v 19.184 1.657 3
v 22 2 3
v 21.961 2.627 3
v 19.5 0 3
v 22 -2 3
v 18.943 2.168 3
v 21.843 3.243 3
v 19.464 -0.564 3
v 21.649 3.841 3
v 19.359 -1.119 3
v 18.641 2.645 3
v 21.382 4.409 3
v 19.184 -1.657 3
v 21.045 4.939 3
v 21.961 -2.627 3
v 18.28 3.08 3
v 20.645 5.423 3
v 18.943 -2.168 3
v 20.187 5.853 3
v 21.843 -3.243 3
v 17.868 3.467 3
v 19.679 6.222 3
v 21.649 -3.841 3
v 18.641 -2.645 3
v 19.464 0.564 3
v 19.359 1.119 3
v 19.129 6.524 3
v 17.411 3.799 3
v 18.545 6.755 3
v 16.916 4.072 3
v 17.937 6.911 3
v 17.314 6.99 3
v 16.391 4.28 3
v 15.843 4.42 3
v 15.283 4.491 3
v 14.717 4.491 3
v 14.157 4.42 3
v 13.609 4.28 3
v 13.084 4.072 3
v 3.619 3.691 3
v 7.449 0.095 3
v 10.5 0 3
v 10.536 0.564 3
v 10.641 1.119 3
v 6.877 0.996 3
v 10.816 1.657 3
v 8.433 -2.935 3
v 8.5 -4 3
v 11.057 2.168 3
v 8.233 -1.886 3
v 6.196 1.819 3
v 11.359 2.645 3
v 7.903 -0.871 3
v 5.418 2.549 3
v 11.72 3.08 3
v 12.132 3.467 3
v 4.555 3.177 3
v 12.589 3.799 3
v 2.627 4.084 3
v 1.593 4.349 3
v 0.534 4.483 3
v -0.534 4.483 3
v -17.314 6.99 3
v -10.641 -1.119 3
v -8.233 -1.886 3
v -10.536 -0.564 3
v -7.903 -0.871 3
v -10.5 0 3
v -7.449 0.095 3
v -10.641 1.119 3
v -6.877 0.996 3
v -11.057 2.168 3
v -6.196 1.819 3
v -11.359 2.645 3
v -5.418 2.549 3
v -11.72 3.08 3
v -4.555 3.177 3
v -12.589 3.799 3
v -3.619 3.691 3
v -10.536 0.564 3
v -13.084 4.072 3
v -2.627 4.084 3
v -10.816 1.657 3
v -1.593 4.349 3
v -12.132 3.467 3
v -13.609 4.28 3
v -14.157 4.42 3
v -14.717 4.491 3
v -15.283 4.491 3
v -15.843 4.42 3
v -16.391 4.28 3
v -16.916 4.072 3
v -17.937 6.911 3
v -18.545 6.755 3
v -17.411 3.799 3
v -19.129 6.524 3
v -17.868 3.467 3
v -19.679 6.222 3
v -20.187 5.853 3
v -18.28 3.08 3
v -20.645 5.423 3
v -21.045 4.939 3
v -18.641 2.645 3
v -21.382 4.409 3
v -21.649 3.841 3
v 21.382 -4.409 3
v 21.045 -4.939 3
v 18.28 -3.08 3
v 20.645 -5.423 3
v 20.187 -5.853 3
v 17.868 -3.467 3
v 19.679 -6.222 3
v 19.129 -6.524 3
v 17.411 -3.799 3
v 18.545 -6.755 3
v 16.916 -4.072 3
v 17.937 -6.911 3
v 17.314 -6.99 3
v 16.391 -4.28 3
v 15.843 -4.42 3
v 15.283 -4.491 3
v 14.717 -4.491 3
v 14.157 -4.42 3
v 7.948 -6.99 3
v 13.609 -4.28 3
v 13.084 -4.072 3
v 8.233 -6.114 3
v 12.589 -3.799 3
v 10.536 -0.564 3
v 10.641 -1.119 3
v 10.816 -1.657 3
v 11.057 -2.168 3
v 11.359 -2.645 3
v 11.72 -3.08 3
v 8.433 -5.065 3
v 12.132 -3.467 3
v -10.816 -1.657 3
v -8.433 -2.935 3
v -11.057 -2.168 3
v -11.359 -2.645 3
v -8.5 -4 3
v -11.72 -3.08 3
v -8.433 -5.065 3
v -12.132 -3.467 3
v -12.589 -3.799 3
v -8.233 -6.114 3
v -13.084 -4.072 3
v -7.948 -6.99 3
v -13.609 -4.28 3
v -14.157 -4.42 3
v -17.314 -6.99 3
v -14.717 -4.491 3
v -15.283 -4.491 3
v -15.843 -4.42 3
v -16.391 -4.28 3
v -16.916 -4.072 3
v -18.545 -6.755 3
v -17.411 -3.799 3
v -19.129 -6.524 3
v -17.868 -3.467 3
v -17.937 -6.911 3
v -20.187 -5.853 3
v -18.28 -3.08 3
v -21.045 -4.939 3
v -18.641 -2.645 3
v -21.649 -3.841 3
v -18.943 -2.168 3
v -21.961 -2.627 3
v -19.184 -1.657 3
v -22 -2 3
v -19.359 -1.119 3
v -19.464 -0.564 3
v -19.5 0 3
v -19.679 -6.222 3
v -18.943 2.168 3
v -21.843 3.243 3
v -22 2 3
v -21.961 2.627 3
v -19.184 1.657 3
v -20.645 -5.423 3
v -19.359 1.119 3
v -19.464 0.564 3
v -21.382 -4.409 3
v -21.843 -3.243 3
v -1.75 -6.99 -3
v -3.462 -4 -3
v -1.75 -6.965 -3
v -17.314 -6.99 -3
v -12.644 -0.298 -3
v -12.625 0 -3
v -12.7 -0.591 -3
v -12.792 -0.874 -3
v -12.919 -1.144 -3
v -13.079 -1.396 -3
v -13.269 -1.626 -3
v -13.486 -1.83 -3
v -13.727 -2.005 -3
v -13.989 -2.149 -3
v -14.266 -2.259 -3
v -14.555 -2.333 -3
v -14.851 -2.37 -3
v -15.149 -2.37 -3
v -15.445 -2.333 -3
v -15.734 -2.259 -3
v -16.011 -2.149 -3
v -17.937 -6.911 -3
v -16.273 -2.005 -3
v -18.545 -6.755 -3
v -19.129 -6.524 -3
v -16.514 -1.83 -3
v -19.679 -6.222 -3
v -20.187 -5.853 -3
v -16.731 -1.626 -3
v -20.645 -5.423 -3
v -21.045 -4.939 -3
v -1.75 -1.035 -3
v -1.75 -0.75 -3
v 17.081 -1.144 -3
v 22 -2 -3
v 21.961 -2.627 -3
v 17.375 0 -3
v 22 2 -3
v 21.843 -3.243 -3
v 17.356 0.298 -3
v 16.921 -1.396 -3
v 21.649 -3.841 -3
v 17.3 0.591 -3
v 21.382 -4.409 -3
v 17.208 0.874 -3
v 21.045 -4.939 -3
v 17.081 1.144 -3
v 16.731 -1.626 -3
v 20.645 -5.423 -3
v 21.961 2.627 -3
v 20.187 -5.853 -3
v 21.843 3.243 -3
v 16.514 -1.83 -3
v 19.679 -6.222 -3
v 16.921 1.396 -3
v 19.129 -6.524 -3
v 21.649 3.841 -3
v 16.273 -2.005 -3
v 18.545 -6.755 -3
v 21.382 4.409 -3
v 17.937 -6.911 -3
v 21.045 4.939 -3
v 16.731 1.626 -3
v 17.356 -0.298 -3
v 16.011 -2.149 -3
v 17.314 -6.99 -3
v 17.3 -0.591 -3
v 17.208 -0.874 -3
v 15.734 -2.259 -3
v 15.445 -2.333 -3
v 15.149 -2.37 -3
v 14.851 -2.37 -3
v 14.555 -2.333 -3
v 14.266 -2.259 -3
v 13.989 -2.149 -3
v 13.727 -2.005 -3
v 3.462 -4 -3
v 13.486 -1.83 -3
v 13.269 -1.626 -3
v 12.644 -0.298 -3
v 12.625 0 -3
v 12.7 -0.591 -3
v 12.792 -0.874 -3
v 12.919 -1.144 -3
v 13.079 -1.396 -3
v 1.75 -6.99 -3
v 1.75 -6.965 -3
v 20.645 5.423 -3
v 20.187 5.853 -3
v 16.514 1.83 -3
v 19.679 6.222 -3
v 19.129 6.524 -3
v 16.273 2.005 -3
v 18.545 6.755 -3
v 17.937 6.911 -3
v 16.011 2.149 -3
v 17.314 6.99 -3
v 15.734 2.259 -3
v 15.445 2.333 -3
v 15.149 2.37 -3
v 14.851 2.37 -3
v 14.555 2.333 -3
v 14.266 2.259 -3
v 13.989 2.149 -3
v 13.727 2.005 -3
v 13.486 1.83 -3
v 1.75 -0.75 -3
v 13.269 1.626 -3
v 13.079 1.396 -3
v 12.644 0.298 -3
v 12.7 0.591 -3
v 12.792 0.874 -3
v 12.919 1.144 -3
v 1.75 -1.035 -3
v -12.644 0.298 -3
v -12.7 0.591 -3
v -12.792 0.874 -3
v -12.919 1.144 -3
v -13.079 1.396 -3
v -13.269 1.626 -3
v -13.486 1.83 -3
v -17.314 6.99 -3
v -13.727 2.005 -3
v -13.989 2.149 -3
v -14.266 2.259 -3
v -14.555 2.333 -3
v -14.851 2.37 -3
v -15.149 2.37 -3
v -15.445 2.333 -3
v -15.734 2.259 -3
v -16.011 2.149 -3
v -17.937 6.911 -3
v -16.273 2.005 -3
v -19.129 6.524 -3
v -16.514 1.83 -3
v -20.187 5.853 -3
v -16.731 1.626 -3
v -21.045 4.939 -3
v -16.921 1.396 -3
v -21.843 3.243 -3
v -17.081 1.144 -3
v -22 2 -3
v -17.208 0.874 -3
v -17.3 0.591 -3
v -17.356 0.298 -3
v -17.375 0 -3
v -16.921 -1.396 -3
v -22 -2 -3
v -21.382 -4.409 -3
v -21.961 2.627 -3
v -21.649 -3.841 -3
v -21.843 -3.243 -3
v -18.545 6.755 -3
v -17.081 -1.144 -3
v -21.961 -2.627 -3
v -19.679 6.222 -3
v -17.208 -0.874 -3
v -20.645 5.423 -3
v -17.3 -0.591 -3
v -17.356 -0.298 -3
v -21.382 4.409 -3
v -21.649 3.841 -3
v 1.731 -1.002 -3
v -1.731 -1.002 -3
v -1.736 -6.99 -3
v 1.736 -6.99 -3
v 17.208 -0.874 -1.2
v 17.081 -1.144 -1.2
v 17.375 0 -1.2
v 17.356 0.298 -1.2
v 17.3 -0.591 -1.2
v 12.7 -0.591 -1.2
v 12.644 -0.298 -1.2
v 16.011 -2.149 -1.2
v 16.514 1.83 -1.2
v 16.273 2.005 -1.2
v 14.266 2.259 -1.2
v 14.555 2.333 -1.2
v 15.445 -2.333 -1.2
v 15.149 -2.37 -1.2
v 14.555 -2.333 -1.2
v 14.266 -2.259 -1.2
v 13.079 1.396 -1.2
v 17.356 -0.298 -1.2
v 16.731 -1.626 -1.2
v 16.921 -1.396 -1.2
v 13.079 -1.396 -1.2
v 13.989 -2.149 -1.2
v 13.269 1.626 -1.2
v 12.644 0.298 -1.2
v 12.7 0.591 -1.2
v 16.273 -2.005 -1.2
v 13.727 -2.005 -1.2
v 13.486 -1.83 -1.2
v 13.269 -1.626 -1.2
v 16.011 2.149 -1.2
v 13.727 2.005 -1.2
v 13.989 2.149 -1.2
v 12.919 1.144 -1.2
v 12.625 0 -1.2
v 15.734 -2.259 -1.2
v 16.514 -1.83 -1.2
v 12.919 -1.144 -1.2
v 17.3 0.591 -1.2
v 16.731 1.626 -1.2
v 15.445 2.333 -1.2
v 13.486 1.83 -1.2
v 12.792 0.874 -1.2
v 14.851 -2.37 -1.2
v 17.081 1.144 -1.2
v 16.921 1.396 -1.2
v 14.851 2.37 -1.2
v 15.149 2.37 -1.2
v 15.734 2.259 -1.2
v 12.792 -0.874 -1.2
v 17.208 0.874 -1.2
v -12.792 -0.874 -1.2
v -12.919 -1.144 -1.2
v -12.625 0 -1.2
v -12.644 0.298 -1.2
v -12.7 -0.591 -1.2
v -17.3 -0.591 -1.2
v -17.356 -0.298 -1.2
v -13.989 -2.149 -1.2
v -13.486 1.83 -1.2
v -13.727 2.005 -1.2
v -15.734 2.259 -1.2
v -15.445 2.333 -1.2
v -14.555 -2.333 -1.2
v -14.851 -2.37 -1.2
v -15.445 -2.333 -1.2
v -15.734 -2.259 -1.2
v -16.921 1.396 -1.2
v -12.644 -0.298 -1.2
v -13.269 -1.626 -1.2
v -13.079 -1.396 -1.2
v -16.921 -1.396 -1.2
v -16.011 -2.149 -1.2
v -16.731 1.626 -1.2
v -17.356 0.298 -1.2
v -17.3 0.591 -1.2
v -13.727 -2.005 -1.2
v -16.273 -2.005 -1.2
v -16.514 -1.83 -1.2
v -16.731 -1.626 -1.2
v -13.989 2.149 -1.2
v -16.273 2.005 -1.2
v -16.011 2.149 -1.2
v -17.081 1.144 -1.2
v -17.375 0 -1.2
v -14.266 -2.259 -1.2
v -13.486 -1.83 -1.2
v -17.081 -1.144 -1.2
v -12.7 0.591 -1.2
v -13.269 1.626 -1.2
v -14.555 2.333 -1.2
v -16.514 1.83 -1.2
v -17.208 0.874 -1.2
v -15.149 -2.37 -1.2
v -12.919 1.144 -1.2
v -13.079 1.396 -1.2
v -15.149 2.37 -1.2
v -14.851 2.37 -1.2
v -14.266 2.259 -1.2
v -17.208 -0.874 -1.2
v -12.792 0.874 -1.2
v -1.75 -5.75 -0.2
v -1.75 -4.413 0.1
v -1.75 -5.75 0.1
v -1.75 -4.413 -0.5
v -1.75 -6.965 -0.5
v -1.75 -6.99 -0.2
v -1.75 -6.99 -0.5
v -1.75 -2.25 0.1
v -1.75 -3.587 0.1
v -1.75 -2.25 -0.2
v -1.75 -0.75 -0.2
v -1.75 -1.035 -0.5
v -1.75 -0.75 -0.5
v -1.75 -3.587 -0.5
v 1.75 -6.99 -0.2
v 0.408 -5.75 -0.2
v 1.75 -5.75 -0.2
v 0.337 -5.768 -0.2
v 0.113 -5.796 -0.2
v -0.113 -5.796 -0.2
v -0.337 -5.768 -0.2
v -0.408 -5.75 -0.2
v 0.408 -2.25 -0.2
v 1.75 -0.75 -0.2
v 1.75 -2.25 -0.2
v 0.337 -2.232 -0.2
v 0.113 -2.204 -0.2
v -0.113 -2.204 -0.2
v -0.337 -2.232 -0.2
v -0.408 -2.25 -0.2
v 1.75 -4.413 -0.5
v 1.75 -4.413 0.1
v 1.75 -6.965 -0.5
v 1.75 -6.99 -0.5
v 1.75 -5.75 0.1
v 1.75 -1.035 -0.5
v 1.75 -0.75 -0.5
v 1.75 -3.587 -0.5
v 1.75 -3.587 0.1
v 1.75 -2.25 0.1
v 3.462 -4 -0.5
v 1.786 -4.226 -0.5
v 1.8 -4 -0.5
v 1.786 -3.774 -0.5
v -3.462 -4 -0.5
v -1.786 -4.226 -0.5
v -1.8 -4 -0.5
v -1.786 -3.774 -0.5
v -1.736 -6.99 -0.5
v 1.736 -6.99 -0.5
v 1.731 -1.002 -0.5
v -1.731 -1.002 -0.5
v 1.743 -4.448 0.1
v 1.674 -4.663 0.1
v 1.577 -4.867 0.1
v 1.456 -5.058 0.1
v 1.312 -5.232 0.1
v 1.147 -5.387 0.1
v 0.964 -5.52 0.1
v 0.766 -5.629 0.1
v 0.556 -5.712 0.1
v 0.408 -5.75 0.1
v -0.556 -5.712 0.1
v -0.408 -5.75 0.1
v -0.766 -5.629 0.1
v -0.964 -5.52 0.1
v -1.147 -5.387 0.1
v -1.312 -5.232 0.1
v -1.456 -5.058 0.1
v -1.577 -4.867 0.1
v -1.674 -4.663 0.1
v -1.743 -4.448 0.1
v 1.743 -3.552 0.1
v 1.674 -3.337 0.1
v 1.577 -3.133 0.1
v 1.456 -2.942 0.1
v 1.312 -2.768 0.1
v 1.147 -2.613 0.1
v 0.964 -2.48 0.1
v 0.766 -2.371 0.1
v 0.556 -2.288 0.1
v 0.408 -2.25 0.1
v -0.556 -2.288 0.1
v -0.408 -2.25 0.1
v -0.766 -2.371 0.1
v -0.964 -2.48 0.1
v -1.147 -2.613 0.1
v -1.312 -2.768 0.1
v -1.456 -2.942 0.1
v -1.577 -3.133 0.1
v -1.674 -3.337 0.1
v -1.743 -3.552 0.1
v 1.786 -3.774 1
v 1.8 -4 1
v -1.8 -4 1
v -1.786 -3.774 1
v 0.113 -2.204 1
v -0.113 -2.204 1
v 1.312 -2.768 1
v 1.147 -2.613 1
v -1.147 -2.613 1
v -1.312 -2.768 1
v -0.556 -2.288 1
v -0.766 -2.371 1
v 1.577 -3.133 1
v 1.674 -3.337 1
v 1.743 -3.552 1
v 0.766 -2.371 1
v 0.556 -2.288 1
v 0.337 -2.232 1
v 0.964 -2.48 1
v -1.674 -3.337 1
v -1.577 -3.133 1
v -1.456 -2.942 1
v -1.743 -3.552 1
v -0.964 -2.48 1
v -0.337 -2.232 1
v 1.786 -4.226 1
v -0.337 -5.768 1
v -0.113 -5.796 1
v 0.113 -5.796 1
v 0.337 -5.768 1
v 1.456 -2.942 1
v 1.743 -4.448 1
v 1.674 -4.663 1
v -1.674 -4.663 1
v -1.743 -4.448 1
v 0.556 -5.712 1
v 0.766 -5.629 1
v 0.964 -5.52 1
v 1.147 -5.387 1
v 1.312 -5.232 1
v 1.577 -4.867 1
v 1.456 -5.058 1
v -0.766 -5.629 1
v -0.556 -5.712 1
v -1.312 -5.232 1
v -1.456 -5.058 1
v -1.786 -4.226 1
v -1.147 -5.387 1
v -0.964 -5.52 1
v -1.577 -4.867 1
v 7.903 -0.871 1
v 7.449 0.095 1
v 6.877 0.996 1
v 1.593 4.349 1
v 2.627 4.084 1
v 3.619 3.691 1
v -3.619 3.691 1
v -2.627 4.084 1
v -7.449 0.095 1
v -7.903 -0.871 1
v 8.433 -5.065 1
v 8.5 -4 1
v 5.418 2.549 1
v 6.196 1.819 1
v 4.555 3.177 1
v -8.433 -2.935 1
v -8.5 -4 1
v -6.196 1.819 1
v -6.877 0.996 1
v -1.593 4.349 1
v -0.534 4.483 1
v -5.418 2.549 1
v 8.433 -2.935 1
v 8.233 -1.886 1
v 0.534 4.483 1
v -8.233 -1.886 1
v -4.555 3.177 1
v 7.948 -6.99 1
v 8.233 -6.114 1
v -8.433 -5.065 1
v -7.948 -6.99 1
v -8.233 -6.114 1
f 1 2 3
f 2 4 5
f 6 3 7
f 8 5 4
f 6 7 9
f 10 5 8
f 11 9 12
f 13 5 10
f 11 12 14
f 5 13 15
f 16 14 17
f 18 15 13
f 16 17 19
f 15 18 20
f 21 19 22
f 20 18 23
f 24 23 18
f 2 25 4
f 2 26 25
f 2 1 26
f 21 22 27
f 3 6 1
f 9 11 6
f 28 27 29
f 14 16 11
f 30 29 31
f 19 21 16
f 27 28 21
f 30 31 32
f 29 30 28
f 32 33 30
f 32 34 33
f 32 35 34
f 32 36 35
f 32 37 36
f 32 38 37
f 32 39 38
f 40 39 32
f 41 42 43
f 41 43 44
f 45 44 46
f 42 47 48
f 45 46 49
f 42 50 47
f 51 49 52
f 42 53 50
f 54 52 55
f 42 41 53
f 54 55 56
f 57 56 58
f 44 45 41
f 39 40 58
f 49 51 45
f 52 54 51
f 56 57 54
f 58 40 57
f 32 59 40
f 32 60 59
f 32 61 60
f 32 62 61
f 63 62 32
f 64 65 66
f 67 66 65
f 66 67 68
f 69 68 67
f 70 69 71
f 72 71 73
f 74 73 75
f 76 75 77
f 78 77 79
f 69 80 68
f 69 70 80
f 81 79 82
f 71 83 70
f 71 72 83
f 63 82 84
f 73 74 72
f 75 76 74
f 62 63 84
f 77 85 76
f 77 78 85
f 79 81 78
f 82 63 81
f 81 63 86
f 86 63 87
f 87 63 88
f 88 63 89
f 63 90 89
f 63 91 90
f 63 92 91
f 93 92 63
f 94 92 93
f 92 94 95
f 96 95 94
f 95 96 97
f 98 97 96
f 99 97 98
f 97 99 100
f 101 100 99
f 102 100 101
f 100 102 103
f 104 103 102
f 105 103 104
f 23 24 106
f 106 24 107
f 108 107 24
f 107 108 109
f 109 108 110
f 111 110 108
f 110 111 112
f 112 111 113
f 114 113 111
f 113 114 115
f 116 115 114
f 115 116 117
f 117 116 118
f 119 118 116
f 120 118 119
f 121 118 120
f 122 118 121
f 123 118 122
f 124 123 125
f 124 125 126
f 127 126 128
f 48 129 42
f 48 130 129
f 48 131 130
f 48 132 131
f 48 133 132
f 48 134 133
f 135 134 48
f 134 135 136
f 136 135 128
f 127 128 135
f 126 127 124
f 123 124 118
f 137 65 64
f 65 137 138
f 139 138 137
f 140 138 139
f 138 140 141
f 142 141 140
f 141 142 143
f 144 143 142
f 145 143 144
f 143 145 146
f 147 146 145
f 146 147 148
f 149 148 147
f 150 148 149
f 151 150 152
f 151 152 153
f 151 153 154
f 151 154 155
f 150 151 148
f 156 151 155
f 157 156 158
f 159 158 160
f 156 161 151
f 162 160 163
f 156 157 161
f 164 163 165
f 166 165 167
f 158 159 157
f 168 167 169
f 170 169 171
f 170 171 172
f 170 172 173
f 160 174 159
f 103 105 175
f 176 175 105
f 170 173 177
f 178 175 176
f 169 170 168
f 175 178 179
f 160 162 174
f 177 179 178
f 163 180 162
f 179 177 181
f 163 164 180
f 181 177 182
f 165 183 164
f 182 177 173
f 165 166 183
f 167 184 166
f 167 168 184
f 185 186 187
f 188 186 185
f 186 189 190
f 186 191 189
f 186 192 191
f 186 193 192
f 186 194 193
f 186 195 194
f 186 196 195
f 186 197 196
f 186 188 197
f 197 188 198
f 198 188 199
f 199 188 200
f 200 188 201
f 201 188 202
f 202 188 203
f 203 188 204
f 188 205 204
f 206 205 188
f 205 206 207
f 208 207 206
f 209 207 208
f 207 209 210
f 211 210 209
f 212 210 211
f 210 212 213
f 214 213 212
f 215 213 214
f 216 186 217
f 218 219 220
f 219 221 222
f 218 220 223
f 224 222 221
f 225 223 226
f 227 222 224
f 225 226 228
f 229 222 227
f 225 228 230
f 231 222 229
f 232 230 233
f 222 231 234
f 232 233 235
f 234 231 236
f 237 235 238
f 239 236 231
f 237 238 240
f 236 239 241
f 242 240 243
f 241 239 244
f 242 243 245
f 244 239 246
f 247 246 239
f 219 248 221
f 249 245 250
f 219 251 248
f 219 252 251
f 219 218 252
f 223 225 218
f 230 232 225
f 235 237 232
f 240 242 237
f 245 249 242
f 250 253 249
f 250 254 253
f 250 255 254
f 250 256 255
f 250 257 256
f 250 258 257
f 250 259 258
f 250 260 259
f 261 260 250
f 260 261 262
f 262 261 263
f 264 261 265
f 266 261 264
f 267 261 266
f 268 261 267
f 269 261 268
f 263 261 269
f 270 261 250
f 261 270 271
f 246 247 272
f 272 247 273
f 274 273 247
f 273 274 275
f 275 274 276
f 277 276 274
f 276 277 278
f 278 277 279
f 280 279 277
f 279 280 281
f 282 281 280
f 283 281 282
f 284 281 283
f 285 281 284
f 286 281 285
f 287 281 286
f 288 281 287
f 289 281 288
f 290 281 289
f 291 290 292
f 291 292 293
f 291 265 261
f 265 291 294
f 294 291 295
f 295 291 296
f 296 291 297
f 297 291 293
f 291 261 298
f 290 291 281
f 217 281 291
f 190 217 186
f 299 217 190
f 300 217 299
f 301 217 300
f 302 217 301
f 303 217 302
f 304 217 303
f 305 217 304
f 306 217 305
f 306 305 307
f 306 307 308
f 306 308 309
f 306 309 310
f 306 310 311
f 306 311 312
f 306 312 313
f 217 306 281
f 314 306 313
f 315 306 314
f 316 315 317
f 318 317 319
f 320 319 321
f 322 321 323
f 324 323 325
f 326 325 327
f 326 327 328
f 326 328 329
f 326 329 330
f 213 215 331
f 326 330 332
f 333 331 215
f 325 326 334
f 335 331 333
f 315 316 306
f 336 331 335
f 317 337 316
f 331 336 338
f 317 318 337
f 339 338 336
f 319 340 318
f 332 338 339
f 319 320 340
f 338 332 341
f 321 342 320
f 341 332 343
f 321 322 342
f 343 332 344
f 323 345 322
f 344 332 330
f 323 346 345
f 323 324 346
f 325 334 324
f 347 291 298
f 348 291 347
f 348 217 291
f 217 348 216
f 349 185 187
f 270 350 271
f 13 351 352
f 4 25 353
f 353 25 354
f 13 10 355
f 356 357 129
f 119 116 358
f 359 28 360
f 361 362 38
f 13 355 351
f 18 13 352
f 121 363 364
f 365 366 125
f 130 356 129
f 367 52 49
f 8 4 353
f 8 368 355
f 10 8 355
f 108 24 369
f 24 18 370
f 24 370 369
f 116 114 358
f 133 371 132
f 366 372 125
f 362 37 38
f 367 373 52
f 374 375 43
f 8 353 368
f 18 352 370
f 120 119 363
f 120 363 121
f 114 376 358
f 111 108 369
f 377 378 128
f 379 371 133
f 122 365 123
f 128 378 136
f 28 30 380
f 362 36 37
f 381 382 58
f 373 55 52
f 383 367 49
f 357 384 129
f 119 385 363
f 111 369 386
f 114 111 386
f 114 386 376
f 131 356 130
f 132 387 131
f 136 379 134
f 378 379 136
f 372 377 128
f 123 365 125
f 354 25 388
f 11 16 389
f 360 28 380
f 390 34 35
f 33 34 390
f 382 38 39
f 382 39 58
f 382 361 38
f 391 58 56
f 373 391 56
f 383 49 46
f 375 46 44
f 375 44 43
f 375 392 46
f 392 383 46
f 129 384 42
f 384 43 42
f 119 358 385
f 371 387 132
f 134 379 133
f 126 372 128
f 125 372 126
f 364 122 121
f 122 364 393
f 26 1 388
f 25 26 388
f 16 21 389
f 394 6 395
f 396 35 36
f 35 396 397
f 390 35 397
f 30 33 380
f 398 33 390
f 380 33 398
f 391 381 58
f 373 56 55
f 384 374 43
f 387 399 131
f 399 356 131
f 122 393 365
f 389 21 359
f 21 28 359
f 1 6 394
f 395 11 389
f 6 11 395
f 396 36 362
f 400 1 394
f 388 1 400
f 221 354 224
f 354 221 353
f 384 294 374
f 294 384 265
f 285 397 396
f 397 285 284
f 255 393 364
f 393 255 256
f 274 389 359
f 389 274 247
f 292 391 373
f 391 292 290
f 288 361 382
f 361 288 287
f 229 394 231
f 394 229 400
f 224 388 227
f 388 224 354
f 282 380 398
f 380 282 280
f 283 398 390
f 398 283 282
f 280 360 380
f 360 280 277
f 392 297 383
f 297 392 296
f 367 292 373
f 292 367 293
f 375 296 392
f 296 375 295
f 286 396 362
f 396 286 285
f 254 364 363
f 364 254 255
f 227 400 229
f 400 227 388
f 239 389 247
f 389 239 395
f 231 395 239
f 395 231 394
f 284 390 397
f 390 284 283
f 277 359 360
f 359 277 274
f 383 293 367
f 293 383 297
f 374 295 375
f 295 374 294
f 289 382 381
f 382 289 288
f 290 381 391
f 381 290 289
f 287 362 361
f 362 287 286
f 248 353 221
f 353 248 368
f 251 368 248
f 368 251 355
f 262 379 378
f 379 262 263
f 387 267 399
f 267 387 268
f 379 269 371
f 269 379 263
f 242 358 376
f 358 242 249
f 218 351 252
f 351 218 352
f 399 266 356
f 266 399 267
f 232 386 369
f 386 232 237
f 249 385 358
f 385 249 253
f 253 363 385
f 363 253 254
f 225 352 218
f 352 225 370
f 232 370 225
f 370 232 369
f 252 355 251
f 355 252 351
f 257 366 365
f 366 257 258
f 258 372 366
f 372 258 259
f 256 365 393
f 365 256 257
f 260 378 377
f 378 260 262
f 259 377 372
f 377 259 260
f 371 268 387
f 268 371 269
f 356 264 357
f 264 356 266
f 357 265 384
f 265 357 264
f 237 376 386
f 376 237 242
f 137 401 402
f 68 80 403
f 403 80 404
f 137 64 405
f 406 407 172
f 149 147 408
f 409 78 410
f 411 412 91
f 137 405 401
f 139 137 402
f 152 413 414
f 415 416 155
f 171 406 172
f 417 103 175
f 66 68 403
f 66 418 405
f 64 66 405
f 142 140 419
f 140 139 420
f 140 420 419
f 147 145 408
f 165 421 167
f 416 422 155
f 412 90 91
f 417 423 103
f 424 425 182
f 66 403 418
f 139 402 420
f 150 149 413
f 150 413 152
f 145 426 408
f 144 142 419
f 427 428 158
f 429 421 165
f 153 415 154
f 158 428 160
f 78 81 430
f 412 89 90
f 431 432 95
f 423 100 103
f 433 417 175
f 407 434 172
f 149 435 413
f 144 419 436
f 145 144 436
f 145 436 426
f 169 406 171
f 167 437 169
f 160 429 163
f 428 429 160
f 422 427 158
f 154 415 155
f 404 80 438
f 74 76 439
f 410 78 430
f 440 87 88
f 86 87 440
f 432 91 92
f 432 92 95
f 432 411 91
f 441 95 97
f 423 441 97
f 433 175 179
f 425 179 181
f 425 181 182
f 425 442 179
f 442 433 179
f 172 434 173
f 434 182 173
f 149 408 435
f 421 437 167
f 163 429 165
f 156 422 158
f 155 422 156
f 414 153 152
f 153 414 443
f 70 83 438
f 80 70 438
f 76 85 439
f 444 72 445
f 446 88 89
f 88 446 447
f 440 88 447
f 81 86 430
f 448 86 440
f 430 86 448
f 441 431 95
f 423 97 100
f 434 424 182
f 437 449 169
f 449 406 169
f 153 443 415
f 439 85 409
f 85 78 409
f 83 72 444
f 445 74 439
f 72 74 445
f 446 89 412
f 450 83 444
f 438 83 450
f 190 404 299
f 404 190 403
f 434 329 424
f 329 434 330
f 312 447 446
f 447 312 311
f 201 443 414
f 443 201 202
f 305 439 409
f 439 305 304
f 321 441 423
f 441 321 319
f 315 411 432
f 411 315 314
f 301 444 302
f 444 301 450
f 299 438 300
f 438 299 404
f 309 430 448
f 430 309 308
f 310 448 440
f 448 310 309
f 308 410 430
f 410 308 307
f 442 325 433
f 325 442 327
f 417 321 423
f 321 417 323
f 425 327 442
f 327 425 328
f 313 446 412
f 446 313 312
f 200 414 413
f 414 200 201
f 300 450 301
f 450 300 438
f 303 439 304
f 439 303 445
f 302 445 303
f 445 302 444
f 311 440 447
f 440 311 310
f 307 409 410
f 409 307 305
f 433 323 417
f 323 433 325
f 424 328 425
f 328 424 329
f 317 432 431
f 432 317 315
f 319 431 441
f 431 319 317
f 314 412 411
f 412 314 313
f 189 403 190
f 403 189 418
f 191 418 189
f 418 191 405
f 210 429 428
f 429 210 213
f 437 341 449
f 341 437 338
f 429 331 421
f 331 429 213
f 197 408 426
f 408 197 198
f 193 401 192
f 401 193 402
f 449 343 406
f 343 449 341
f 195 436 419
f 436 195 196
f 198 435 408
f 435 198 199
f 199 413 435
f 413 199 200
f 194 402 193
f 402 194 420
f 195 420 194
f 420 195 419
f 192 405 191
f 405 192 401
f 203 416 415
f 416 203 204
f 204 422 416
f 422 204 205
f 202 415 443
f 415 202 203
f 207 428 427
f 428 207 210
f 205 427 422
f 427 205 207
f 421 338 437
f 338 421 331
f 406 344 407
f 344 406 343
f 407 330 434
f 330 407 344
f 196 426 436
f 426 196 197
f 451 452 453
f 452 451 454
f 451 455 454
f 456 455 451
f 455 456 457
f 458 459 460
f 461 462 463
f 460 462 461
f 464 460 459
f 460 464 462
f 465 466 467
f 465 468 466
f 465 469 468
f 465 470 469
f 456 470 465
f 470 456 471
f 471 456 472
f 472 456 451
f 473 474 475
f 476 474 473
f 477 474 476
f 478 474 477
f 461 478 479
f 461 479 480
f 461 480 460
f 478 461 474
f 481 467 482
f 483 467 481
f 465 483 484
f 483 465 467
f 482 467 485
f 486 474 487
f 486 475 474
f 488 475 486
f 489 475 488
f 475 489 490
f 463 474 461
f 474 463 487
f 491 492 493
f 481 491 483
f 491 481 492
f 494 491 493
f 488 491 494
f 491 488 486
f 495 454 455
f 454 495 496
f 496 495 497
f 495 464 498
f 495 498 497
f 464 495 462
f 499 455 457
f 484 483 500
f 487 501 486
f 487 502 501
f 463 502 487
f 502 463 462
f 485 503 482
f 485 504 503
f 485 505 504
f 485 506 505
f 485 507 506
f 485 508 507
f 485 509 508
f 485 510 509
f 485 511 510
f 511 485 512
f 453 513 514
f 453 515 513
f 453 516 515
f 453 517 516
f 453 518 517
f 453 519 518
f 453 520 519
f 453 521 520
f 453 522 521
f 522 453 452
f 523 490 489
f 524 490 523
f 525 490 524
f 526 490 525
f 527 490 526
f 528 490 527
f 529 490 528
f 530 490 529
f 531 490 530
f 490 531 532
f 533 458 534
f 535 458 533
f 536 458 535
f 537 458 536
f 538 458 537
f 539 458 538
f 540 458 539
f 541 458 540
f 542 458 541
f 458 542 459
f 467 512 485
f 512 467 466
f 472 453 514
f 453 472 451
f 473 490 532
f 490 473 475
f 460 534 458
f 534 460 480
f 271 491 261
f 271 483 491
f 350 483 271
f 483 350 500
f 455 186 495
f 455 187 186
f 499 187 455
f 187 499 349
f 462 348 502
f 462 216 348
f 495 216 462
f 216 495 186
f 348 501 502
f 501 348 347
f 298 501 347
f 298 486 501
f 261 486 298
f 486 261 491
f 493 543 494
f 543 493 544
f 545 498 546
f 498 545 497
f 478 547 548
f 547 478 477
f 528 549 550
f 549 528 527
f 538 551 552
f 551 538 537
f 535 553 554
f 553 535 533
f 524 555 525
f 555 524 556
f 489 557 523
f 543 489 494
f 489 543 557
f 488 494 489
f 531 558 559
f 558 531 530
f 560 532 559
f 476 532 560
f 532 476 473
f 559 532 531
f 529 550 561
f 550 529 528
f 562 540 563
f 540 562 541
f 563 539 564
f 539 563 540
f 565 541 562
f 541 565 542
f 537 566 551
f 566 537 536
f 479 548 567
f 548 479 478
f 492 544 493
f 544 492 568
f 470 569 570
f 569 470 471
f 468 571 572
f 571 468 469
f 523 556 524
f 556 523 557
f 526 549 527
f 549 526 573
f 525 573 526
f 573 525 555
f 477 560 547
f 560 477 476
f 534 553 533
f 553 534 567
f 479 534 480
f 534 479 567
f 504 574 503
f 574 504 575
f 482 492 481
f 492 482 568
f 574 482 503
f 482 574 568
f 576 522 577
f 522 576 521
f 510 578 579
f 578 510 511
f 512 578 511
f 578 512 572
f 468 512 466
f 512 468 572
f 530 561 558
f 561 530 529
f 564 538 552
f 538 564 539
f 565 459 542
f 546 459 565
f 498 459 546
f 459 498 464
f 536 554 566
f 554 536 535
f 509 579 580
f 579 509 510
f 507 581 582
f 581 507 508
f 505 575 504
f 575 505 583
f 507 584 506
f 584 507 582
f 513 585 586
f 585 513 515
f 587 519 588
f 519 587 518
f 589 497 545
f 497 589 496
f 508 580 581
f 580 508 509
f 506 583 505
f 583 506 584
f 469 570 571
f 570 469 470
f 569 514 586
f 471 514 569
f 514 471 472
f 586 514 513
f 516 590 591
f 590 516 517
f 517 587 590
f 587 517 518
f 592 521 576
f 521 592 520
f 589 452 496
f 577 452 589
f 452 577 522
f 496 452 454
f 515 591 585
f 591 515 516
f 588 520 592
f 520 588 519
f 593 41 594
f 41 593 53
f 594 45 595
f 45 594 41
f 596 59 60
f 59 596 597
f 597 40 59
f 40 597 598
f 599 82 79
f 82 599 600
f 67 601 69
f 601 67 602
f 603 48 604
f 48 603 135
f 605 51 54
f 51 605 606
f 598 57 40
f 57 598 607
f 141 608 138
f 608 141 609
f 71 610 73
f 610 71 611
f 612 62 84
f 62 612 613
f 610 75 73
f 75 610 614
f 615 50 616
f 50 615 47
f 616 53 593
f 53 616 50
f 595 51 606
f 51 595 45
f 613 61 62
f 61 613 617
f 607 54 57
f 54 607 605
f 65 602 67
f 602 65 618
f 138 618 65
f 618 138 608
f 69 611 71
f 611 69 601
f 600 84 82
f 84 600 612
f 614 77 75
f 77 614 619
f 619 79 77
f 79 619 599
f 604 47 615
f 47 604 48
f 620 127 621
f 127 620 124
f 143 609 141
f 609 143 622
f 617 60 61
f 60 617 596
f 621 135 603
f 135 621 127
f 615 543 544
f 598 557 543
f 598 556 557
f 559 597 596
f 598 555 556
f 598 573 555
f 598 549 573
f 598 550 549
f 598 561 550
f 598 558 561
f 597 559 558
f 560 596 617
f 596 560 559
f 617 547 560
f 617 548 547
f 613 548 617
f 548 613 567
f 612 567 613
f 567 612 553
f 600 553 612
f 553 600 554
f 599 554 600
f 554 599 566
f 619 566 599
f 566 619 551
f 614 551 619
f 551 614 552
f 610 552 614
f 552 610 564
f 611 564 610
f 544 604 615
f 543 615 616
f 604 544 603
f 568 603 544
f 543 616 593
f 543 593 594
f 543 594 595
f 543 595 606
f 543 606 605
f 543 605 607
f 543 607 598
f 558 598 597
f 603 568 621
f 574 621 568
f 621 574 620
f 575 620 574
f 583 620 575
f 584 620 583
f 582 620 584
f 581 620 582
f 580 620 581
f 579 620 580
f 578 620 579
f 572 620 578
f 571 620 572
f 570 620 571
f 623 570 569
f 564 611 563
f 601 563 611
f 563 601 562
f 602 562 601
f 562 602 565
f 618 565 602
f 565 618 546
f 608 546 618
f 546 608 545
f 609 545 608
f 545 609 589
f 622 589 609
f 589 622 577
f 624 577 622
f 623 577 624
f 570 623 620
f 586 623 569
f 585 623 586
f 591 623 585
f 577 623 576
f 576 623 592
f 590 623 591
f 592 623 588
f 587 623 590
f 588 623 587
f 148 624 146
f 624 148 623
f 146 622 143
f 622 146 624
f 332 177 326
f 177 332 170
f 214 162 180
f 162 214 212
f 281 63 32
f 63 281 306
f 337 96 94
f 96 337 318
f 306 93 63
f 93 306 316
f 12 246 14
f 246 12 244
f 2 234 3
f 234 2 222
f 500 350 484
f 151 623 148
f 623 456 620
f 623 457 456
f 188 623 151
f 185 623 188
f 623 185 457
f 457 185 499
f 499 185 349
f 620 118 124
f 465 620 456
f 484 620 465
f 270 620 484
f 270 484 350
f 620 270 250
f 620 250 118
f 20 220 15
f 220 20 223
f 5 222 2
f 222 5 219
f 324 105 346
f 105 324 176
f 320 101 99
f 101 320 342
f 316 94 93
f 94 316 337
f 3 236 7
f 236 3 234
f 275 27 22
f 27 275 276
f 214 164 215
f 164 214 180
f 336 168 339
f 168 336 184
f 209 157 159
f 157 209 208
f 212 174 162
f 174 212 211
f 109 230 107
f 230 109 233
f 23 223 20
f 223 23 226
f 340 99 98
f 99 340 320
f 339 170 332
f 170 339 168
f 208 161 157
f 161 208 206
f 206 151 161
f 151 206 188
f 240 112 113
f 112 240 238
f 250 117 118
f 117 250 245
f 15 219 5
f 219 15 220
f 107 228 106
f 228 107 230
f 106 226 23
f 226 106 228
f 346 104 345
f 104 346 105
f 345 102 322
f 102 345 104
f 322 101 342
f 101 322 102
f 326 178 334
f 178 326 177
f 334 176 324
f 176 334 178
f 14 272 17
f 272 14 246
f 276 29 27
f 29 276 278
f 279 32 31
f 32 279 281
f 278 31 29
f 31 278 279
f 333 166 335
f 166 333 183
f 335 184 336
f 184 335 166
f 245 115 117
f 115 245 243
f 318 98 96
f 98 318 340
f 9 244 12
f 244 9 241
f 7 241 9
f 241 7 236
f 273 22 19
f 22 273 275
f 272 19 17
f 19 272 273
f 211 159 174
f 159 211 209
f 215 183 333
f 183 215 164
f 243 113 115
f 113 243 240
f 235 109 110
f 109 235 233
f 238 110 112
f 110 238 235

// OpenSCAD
$fn = 50;


difference() {
	union() {
		translate(v = [0, 0, -3.0000000000]) {
			hull() {
				translate(v = [-17.0000000000, 2.0000000000, 0]) {
					cylinder(h = 6, r = 5);
				}
				translate(v = [17.0000000000, 2.0000000000, 0]) {
					cylinder(h = 6, r = 5);
				}
				translate(v = [-17.0000000000, -2.0000000000, 0]) {
					cylinder(h = 6, r = 5);
				}
				translate(v = [17.0000000000, -2.0000000000, 0]) {
					cylinder(h = 6, r = 5);
				}
			}
		}
	}
	union() {
		translate(v = [15, 0, 3.0000000000]) {
			rotate(a = [0, 0, 0]) {
				difference() {
					union() {
						translate(v = [0, 0, -6.0000000000]) {
							cylinder(h = 6, r = 2.2500000000);
						}
						translate(v = [0, 0, -4.2000000000]) {
							cylinder(h = 4.2000000000, r1 = 2.3750000000, r2 = 4.5000000000);
						}
						translate(v = [0, 0, -6.0000000000]) {
							cylinder(h = 6, r = 2.3750000000);
						}
						translate(v = [0, 0, -6.0000000000]) {
							cylinder(h = 6, r = 2.2500000000);
						}
					}
					union();
				}
			}
		}
		translate(v = [-15, 0, 3.0000000000]) {
			rotate(a = [0, 0, 0]) {
				difference() {
					union() {
						translate(v = [0, 0, -6.0000000000]) {
							cylinder(h = 6, r = 2.2500000000);
						}
						translate(v = [0, 0, -4.2000000000]) {
							cylinder(h = 4.2000000000, r1 = 2.3750000000, r2 = 4.5000000000);
						}
						translate(v = [0, 0, -6.0000000000]) {
							cylinder(h = 6, r = 2.3750000000);
						}
						translate(v = [0, 0, -6.0000000000]) {
							cylinder(h = 6, r = 2.2500000000);
						}
					}
					union();
				}
			}
		}
		translate(v = [0, -4, 3.0000000000]) {
			rotate(a = [0, 0, 0]) {
				difference() {
					union() {
						translate(v = [0, 0, -6.0000000000]) {
							rotate(a = [0, 0, 0]) {
								difference() {
									union() {
										translate(v = [-1.7500000000, -3.2500000000, -0.3000000000]) {
											cube(size = [3.5000000000, 6.5000000000, 0.3000000000]);
										}
										translate(v = [-1.7500000000, -1.7500000000, -0.6000000000]) {
											cube(size = [3.5000000000, 3.5000000000, 0.3000000000]);
										}
										translate(v = [-1.7500000000, -3.2500000000, 2.5000000000]) {
											cube(size = [3.5000000000, 6.5000000000, 0.3000000000]);
										}
										translate(v = [-1.7500000000, -1.7500000000, 2.8000000000]) {
											cube(size = [3.5000000000, 3.5000000000, 0.3000000000]);
										}
										linear_extrude(height = 2.5000000000) {
											polygon(points = [[3.4620000000, 0.0000000000], [1.7310000000, 2.9981799479], [-1.7310000000, 2.9981799479], [-3.4620000000, 0.0000000000], [-1.7310000000, -2.9981799479], [1.7310000000, -2.9981799479]]);
										}
										translate(v = [-1.7500000000, -3.2500000000, -0.3000000000]) {
											cube(size = [3.5000000000, 6.5000000000, 0.3000000000]);
										}
										translate(v = [-1.7500000000, -1.7500000000, -0.6000000000]) {
											cube(size = [3.5000000000, 3.5000000000, 0.3000000000]);
										}
										translate(v = [-1.7500000000, -3.2500000000, 2.5000000000]) {
											cube(size = [3.5000000000, 6.5000000000, 0.3000000000]);
										}
										translate(v = [-1.7500000000, -1.7500000000, 2.8000000000]) {
											cube(size = [3.5000000000, 3.5000000000, 0.3000000000]);
										}
										translate(v = [-1.7500000000, -3.2500000000, -0.3000000000]) {
											cube(size = [3.5000000000, 6.5000000000, 0.3000000000]);
										}
										translate(v = [-1.7500000000, -1.7500000000, -0.6000000000]) {
											cube(size = [3.5000000000, 3.5000000000, 0.3000000000]);
										}
										translate(v = [-1.7500000000, -3.2500000000, 2.5000000000]) {
											cube(size = [3.5000000000, 6.5000000000, 0.3000000000]);
										}
										translate(v = [-1.7500000000, -1.7500000000, 2.8000000000]) {
											cube(size = [3.5000000000, 3.5000000000, 0.3000000000]);
										}
									}
									union();
								}
							}
						}
						translate(v = [0, 0, -6.0000000000]) {
							rotate(a = [0, 0, 0]) {
								difference() {
									union() {
										translate(v = [-1.7500000000, -3.2500000000, -0.3000000000]) {
											cube(size = [3.5000000000, 6.5000000000, 0.3000000000]);
										}
										translate(v = [-1.7500000000, -1.7500000000, -0.6000000000]) {
											cube(size = [3.5000000000, 3.5000000000, 0.3000000000]);
										}
										translate(v = [-1.7500000000, -3.2500000000, 2.5000000000]) {
											cube(size = [3.5000000000, 6.5000000000, 0.3000000000]);
										}
										translate(v = [-1.7500000000, -1.7500000000, 2.8000000000]) {
											cube(size = [3.5000000000, 3.5000000000, 0.3000000000]);
										}
										linear_extrude(height = 2.5000000000) {
											polygon(points = [[3.4620000000, 0.0000000000], [1.7310000000, 2.9981799479], [-1.7310000000, 2.9981799479], [-3.4620000000, 0.0000000000], [-1.7310000000, -2.9981799479], [1.7310000000, -2.9981799479]]);
										}
										translate(v = [-1.7500000000, -3.2500000000, -0.3000000000]) {
											cube(size = [3.5000000000, 6.5000000000, 0.3000000000]);
										}
										translate(v = [-1.7500000000, -1.7500000000, -0.6000000000]) {
											cube(size = [3.5000000000, 3.5000000000, 0.3000000000]);
										}
										translate(v = [-1.7500000000, -3.2500000000, 2.5000000000]) {
											cube(size = [3.5000000000, 6.5000000000, 0.3000000000]);
										}
										translate(v = [-1.7500000000, -1.7500000000, 2.8000000000]) {
											cube(size = [3.5000000000, 3.5000000000, 0.3000000000]);
										}
										translate(v = [-1.7500000000, -3.2500000000, -0.3000000000]) {
											cube(size = [3.5000000000, 6.5000000000, 0.3000000000]);
										}
										translate(v = [-1.7500000000, -1.7500000000, -0.6000000000]) {
											cube(size = [3.5000000000, 3.5000000000, 0.3000000000]);
										}
										translate(v = [-1.7500000000, -3.2500000000, 2.5000000000]) {
											cube(size = [3.5000000000, 6.5000000000, 0.3000000000]);
										}
										translate(v = [-1.7500000000, -1.7500000000, 2.8000000000]) {
											cube(size = [3.5000000000, 3.5000000000, 0.3000000000]);
										}
									}
									union();
								}
							}
						}
						translate(v = [0, 0, -6.0000000000]) {
							rotate(a = [0, 0, 0]) {
								difference() {
									union() {
										translate(v = [-1.7500000000, -3.2500000000, -0.3000000000]) {
											cube(size = [3.5000000000, 6.5000000000, 0.3000000000]);
										}
										translate(v = [-1.7500000000, -1.7500000000, -0.6000000000]) {
											cube(size = [3.5000000000, 3.5000000000, 0.3000000000]);
										}
										translate(v = [-1.7500000000, -3.2500000000, 2.5000000000]) {
											cube(size = [3.5000000000, 6.5000000000, 0.3000000000]);
										}
										translate(v = [-1.7500000000, -1.7500000000, 2.8000000000]) {
											cube(size = [3.5000000000, 3.5000000000, 0.3000000000]);
										}
										linear_extrude(height = 2.5000000000) {
											polygon(points = [[3.4620000000, 0.0000000000], [1.7310000000, 2.9981799479], [-1.7310000000, 2.9981799479], [-3.4620000000, 0.0000000000], [-1.7310000000, -2.9981799479], [1.7310000000, -2.9981799479]]);
										}
										translate(v = [-1.7500000000, -3.2500000000, -0.3000000000]) {
											cube(size = [3.5000000000, 6.5000000000, 0.3000000000]);
										}
										translate(v = [-1.7500000000, -1.7500000000, -0.6000000000]) {
											cube(size = [3.5000000000, 3.5000000000, 0.3000000000]);
										}
										translate(v = [-1.7500000000, -3.2500000000, 2.5000000000]) {
											cube(size = [3.5000000000, 6.5000000000, 0.3000000000]);
										}
										translate(v = [-1.7500000000, -1.7500000000, 2.8000000000]) {
											cube(size = [3.5000000000, 3.5000000000, 0.3000000000]);
										}
										translate(v = [-1.7500000000, -3.2500000000, -0.3000000000]) {
											cube(size = [3.5000000000, 6.5000000000, 0.3000000000]);
										}
										translate(v = [-1.7500000000, -1.7500000000, -0.6000000000]) {
											cube(size = [3.5000000000, 3.5000000000, 0.3000000000]);
										}
										translate(v = [-1.7500000000, -3.2500000000, 2.5000000000]) {
											cube(size = [3.5000000000, 6.5000000000, 0.3000000000]);
										}
										translate(v = [-1.7500000000, -1.7500000000, 2.8000000000]) {
											cube(size = [3.5000000000, 3.5000000000, 0.3000000000]);
										}
									}
									union();
								}
							}
						}
						translate(v = [0, 0, -6.0000000000]) {
							cylinder(h = 6, r = 1.5000000000);
						}
						translate(v = [0, 0, -1.9000000000]) {
							cylinder(h = 1.9000000000, r1 = 1.8000000000, r2 = 3.6000000000);
						}
						translate(v = [0, 0, -6.0000000000]) {
							cylinder(h = 6, r = 1.8000000000);
						}
						translate(v = [0, 0, -6.0000000000]) {
							cylinder(h = 6, r = 1.5000000000);
						}
					}
					union();
				}
			}
		}
		translate(v = [0, -4, 1.0000000000]) {
			cylinder(h = 2, r = 8.5000000000);
		}
	}
}
